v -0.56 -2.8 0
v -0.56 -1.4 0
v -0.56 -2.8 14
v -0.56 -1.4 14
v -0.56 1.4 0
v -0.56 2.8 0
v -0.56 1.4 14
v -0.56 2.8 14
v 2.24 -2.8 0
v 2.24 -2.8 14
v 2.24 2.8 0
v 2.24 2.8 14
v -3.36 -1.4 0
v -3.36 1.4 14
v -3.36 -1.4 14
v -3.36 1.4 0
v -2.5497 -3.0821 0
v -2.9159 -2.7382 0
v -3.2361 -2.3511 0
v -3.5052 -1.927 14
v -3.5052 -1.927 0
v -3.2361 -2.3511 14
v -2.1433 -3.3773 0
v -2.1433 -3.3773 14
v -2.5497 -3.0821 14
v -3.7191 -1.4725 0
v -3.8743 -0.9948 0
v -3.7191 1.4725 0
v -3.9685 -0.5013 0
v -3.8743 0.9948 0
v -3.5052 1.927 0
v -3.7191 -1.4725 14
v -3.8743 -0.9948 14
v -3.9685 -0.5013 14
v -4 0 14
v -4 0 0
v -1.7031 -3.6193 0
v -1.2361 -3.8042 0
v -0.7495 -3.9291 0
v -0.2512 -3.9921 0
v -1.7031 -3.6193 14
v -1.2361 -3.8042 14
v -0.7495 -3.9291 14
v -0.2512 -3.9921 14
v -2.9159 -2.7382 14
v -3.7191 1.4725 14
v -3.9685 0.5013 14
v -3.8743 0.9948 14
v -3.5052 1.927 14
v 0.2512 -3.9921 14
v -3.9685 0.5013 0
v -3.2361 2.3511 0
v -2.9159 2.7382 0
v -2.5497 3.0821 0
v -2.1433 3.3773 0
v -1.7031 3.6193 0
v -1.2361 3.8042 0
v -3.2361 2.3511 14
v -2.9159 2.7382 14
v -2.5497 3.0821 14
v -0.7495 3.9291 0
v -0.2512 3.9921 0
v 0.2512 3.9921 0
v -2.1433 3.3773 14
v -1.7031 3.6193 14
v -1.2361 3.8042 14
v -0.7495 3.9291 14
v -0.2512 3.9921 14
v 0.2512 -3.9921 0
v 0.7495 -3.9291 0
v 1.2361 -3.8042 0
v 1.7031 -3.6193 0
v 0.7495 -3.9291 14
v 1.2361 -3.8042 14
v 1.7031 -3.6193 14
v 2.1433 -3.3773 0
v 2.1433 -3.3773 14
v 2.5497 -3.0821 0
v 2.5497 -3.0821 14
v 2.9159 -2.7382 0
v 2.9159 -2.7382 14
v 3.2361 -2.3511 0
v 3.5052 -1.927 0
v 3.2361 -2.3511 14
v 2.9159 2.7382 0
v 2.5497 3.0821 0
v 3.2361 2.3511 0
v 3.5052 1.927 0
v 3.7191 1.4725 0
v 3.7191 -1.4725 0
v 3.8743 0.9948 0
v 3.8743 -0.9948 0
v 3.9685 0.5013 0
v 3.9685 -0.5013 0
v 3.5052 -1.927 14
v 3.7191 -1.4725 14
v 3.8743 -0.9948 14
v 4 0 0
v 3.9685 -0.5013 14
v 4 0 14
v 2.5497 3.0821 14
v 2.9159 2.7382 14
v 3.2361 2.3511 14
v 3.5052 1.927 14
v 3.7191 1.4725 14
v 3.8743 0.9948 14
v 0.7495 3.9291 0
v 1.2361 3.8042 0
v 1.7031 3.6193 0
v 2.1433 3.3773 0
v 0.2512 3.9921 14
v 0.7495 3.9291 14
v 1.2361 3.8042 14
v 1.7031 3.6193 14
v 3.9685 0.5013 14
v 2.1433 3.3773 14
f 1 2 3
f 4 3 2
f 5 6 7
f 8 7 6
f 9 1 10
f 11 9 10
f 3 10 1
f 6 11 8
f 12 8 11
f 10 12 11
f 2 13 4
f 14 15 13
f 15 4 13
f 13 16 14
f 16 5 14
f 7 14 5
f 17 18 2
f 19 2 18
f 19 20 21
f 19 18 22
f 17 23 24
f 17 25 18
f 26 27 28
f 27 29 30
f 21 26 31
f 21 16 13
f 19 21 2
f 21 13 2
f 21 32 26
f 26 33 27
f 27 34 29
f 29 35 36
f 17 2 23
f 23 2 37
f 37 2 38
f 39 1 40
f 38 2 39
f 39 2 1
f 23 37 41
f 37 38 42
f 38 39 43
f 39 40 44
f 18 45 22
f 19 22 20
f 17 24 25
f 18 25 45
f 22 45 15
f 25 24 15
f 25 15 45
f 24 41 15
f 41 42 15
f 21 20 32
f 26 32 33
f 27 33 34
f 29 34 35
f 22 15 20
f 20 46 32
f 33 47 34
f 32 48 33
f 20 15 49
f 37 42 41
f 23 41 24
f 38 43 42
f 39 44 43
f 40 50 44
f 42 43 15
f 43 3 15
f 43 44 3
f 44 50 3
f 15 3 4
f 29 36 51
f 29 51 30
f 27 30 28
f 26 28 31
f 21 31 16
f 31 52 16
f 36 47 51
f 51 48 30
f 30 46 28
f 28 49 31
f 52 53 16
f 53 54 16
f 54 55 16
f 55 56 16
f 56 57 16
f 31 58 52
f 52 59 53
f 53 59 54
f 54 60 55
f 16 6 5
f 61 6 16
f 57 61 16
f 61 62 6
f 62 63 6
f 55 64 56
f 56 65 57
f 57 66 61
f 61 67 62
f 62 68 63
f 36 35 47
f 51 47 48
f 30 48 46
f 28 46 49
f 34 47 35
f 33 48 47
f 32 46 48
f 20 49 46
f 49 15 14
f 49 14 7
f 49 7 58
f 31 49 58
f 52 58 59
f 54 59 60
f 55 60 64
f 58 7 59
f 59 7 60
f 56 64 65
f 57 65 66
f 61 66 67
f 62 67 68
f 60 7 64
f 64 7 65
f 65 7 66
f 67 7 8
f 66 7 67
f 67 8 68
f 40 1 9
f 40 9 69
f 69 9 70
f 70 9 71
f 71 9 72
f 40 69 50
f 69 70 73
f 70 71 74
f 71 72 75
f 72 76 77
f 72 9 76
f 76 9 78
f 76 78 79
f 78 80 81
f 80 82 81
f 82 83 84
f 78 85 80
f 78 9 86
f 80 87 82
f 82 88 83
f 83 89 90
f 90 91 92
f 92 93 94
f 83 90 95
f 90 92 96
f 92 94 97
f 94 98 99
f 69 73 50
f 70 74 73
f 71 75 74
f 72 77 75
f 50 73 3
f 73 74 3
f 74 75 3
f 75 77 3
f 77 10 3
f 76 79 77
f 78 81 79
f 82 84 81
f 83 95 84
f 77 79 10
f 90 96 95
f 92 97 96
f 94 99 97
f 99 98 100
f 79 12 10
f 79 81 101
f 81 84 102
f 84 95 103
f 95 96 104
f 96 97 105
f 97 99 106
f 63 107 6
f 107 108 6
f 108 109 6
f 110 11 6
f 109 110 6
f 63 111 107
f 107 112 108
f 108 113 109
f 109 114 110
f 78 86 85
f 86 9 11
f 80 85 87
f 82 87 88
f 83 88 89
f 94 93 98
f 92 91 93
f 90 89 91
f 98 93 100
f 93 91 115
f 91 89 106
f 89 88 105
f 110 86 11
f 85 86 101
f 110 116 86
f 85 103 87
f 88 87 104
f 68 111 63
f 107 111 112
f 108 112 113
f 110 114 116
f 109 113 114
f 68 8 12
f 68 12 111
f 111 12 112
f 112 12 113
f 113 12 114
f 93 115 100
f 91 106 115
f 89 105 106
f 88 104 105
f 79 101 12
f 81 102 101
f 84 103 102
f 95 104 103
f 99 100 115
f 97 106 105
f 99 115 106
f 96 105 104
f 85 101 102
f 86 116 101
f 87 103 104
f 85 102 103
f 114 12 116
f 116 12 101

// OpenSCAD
// 3 pin dupont for tube connect

$fn=50;

dupont3Pin();

module dupont3Pin()
{
    dp = 2.6+0.2;
    hp = 14;
    m = 1/5;
    difference(){
    cylinder(d=8, h=14 );
    union(){
        translate([-dp*m,-dp,0])         cube( [dp, 2*dp, 14] );
        translate([-dp*(m+1),-dp/2,0])   cube( [dp, dp, 14] );    
        }
    }
}
